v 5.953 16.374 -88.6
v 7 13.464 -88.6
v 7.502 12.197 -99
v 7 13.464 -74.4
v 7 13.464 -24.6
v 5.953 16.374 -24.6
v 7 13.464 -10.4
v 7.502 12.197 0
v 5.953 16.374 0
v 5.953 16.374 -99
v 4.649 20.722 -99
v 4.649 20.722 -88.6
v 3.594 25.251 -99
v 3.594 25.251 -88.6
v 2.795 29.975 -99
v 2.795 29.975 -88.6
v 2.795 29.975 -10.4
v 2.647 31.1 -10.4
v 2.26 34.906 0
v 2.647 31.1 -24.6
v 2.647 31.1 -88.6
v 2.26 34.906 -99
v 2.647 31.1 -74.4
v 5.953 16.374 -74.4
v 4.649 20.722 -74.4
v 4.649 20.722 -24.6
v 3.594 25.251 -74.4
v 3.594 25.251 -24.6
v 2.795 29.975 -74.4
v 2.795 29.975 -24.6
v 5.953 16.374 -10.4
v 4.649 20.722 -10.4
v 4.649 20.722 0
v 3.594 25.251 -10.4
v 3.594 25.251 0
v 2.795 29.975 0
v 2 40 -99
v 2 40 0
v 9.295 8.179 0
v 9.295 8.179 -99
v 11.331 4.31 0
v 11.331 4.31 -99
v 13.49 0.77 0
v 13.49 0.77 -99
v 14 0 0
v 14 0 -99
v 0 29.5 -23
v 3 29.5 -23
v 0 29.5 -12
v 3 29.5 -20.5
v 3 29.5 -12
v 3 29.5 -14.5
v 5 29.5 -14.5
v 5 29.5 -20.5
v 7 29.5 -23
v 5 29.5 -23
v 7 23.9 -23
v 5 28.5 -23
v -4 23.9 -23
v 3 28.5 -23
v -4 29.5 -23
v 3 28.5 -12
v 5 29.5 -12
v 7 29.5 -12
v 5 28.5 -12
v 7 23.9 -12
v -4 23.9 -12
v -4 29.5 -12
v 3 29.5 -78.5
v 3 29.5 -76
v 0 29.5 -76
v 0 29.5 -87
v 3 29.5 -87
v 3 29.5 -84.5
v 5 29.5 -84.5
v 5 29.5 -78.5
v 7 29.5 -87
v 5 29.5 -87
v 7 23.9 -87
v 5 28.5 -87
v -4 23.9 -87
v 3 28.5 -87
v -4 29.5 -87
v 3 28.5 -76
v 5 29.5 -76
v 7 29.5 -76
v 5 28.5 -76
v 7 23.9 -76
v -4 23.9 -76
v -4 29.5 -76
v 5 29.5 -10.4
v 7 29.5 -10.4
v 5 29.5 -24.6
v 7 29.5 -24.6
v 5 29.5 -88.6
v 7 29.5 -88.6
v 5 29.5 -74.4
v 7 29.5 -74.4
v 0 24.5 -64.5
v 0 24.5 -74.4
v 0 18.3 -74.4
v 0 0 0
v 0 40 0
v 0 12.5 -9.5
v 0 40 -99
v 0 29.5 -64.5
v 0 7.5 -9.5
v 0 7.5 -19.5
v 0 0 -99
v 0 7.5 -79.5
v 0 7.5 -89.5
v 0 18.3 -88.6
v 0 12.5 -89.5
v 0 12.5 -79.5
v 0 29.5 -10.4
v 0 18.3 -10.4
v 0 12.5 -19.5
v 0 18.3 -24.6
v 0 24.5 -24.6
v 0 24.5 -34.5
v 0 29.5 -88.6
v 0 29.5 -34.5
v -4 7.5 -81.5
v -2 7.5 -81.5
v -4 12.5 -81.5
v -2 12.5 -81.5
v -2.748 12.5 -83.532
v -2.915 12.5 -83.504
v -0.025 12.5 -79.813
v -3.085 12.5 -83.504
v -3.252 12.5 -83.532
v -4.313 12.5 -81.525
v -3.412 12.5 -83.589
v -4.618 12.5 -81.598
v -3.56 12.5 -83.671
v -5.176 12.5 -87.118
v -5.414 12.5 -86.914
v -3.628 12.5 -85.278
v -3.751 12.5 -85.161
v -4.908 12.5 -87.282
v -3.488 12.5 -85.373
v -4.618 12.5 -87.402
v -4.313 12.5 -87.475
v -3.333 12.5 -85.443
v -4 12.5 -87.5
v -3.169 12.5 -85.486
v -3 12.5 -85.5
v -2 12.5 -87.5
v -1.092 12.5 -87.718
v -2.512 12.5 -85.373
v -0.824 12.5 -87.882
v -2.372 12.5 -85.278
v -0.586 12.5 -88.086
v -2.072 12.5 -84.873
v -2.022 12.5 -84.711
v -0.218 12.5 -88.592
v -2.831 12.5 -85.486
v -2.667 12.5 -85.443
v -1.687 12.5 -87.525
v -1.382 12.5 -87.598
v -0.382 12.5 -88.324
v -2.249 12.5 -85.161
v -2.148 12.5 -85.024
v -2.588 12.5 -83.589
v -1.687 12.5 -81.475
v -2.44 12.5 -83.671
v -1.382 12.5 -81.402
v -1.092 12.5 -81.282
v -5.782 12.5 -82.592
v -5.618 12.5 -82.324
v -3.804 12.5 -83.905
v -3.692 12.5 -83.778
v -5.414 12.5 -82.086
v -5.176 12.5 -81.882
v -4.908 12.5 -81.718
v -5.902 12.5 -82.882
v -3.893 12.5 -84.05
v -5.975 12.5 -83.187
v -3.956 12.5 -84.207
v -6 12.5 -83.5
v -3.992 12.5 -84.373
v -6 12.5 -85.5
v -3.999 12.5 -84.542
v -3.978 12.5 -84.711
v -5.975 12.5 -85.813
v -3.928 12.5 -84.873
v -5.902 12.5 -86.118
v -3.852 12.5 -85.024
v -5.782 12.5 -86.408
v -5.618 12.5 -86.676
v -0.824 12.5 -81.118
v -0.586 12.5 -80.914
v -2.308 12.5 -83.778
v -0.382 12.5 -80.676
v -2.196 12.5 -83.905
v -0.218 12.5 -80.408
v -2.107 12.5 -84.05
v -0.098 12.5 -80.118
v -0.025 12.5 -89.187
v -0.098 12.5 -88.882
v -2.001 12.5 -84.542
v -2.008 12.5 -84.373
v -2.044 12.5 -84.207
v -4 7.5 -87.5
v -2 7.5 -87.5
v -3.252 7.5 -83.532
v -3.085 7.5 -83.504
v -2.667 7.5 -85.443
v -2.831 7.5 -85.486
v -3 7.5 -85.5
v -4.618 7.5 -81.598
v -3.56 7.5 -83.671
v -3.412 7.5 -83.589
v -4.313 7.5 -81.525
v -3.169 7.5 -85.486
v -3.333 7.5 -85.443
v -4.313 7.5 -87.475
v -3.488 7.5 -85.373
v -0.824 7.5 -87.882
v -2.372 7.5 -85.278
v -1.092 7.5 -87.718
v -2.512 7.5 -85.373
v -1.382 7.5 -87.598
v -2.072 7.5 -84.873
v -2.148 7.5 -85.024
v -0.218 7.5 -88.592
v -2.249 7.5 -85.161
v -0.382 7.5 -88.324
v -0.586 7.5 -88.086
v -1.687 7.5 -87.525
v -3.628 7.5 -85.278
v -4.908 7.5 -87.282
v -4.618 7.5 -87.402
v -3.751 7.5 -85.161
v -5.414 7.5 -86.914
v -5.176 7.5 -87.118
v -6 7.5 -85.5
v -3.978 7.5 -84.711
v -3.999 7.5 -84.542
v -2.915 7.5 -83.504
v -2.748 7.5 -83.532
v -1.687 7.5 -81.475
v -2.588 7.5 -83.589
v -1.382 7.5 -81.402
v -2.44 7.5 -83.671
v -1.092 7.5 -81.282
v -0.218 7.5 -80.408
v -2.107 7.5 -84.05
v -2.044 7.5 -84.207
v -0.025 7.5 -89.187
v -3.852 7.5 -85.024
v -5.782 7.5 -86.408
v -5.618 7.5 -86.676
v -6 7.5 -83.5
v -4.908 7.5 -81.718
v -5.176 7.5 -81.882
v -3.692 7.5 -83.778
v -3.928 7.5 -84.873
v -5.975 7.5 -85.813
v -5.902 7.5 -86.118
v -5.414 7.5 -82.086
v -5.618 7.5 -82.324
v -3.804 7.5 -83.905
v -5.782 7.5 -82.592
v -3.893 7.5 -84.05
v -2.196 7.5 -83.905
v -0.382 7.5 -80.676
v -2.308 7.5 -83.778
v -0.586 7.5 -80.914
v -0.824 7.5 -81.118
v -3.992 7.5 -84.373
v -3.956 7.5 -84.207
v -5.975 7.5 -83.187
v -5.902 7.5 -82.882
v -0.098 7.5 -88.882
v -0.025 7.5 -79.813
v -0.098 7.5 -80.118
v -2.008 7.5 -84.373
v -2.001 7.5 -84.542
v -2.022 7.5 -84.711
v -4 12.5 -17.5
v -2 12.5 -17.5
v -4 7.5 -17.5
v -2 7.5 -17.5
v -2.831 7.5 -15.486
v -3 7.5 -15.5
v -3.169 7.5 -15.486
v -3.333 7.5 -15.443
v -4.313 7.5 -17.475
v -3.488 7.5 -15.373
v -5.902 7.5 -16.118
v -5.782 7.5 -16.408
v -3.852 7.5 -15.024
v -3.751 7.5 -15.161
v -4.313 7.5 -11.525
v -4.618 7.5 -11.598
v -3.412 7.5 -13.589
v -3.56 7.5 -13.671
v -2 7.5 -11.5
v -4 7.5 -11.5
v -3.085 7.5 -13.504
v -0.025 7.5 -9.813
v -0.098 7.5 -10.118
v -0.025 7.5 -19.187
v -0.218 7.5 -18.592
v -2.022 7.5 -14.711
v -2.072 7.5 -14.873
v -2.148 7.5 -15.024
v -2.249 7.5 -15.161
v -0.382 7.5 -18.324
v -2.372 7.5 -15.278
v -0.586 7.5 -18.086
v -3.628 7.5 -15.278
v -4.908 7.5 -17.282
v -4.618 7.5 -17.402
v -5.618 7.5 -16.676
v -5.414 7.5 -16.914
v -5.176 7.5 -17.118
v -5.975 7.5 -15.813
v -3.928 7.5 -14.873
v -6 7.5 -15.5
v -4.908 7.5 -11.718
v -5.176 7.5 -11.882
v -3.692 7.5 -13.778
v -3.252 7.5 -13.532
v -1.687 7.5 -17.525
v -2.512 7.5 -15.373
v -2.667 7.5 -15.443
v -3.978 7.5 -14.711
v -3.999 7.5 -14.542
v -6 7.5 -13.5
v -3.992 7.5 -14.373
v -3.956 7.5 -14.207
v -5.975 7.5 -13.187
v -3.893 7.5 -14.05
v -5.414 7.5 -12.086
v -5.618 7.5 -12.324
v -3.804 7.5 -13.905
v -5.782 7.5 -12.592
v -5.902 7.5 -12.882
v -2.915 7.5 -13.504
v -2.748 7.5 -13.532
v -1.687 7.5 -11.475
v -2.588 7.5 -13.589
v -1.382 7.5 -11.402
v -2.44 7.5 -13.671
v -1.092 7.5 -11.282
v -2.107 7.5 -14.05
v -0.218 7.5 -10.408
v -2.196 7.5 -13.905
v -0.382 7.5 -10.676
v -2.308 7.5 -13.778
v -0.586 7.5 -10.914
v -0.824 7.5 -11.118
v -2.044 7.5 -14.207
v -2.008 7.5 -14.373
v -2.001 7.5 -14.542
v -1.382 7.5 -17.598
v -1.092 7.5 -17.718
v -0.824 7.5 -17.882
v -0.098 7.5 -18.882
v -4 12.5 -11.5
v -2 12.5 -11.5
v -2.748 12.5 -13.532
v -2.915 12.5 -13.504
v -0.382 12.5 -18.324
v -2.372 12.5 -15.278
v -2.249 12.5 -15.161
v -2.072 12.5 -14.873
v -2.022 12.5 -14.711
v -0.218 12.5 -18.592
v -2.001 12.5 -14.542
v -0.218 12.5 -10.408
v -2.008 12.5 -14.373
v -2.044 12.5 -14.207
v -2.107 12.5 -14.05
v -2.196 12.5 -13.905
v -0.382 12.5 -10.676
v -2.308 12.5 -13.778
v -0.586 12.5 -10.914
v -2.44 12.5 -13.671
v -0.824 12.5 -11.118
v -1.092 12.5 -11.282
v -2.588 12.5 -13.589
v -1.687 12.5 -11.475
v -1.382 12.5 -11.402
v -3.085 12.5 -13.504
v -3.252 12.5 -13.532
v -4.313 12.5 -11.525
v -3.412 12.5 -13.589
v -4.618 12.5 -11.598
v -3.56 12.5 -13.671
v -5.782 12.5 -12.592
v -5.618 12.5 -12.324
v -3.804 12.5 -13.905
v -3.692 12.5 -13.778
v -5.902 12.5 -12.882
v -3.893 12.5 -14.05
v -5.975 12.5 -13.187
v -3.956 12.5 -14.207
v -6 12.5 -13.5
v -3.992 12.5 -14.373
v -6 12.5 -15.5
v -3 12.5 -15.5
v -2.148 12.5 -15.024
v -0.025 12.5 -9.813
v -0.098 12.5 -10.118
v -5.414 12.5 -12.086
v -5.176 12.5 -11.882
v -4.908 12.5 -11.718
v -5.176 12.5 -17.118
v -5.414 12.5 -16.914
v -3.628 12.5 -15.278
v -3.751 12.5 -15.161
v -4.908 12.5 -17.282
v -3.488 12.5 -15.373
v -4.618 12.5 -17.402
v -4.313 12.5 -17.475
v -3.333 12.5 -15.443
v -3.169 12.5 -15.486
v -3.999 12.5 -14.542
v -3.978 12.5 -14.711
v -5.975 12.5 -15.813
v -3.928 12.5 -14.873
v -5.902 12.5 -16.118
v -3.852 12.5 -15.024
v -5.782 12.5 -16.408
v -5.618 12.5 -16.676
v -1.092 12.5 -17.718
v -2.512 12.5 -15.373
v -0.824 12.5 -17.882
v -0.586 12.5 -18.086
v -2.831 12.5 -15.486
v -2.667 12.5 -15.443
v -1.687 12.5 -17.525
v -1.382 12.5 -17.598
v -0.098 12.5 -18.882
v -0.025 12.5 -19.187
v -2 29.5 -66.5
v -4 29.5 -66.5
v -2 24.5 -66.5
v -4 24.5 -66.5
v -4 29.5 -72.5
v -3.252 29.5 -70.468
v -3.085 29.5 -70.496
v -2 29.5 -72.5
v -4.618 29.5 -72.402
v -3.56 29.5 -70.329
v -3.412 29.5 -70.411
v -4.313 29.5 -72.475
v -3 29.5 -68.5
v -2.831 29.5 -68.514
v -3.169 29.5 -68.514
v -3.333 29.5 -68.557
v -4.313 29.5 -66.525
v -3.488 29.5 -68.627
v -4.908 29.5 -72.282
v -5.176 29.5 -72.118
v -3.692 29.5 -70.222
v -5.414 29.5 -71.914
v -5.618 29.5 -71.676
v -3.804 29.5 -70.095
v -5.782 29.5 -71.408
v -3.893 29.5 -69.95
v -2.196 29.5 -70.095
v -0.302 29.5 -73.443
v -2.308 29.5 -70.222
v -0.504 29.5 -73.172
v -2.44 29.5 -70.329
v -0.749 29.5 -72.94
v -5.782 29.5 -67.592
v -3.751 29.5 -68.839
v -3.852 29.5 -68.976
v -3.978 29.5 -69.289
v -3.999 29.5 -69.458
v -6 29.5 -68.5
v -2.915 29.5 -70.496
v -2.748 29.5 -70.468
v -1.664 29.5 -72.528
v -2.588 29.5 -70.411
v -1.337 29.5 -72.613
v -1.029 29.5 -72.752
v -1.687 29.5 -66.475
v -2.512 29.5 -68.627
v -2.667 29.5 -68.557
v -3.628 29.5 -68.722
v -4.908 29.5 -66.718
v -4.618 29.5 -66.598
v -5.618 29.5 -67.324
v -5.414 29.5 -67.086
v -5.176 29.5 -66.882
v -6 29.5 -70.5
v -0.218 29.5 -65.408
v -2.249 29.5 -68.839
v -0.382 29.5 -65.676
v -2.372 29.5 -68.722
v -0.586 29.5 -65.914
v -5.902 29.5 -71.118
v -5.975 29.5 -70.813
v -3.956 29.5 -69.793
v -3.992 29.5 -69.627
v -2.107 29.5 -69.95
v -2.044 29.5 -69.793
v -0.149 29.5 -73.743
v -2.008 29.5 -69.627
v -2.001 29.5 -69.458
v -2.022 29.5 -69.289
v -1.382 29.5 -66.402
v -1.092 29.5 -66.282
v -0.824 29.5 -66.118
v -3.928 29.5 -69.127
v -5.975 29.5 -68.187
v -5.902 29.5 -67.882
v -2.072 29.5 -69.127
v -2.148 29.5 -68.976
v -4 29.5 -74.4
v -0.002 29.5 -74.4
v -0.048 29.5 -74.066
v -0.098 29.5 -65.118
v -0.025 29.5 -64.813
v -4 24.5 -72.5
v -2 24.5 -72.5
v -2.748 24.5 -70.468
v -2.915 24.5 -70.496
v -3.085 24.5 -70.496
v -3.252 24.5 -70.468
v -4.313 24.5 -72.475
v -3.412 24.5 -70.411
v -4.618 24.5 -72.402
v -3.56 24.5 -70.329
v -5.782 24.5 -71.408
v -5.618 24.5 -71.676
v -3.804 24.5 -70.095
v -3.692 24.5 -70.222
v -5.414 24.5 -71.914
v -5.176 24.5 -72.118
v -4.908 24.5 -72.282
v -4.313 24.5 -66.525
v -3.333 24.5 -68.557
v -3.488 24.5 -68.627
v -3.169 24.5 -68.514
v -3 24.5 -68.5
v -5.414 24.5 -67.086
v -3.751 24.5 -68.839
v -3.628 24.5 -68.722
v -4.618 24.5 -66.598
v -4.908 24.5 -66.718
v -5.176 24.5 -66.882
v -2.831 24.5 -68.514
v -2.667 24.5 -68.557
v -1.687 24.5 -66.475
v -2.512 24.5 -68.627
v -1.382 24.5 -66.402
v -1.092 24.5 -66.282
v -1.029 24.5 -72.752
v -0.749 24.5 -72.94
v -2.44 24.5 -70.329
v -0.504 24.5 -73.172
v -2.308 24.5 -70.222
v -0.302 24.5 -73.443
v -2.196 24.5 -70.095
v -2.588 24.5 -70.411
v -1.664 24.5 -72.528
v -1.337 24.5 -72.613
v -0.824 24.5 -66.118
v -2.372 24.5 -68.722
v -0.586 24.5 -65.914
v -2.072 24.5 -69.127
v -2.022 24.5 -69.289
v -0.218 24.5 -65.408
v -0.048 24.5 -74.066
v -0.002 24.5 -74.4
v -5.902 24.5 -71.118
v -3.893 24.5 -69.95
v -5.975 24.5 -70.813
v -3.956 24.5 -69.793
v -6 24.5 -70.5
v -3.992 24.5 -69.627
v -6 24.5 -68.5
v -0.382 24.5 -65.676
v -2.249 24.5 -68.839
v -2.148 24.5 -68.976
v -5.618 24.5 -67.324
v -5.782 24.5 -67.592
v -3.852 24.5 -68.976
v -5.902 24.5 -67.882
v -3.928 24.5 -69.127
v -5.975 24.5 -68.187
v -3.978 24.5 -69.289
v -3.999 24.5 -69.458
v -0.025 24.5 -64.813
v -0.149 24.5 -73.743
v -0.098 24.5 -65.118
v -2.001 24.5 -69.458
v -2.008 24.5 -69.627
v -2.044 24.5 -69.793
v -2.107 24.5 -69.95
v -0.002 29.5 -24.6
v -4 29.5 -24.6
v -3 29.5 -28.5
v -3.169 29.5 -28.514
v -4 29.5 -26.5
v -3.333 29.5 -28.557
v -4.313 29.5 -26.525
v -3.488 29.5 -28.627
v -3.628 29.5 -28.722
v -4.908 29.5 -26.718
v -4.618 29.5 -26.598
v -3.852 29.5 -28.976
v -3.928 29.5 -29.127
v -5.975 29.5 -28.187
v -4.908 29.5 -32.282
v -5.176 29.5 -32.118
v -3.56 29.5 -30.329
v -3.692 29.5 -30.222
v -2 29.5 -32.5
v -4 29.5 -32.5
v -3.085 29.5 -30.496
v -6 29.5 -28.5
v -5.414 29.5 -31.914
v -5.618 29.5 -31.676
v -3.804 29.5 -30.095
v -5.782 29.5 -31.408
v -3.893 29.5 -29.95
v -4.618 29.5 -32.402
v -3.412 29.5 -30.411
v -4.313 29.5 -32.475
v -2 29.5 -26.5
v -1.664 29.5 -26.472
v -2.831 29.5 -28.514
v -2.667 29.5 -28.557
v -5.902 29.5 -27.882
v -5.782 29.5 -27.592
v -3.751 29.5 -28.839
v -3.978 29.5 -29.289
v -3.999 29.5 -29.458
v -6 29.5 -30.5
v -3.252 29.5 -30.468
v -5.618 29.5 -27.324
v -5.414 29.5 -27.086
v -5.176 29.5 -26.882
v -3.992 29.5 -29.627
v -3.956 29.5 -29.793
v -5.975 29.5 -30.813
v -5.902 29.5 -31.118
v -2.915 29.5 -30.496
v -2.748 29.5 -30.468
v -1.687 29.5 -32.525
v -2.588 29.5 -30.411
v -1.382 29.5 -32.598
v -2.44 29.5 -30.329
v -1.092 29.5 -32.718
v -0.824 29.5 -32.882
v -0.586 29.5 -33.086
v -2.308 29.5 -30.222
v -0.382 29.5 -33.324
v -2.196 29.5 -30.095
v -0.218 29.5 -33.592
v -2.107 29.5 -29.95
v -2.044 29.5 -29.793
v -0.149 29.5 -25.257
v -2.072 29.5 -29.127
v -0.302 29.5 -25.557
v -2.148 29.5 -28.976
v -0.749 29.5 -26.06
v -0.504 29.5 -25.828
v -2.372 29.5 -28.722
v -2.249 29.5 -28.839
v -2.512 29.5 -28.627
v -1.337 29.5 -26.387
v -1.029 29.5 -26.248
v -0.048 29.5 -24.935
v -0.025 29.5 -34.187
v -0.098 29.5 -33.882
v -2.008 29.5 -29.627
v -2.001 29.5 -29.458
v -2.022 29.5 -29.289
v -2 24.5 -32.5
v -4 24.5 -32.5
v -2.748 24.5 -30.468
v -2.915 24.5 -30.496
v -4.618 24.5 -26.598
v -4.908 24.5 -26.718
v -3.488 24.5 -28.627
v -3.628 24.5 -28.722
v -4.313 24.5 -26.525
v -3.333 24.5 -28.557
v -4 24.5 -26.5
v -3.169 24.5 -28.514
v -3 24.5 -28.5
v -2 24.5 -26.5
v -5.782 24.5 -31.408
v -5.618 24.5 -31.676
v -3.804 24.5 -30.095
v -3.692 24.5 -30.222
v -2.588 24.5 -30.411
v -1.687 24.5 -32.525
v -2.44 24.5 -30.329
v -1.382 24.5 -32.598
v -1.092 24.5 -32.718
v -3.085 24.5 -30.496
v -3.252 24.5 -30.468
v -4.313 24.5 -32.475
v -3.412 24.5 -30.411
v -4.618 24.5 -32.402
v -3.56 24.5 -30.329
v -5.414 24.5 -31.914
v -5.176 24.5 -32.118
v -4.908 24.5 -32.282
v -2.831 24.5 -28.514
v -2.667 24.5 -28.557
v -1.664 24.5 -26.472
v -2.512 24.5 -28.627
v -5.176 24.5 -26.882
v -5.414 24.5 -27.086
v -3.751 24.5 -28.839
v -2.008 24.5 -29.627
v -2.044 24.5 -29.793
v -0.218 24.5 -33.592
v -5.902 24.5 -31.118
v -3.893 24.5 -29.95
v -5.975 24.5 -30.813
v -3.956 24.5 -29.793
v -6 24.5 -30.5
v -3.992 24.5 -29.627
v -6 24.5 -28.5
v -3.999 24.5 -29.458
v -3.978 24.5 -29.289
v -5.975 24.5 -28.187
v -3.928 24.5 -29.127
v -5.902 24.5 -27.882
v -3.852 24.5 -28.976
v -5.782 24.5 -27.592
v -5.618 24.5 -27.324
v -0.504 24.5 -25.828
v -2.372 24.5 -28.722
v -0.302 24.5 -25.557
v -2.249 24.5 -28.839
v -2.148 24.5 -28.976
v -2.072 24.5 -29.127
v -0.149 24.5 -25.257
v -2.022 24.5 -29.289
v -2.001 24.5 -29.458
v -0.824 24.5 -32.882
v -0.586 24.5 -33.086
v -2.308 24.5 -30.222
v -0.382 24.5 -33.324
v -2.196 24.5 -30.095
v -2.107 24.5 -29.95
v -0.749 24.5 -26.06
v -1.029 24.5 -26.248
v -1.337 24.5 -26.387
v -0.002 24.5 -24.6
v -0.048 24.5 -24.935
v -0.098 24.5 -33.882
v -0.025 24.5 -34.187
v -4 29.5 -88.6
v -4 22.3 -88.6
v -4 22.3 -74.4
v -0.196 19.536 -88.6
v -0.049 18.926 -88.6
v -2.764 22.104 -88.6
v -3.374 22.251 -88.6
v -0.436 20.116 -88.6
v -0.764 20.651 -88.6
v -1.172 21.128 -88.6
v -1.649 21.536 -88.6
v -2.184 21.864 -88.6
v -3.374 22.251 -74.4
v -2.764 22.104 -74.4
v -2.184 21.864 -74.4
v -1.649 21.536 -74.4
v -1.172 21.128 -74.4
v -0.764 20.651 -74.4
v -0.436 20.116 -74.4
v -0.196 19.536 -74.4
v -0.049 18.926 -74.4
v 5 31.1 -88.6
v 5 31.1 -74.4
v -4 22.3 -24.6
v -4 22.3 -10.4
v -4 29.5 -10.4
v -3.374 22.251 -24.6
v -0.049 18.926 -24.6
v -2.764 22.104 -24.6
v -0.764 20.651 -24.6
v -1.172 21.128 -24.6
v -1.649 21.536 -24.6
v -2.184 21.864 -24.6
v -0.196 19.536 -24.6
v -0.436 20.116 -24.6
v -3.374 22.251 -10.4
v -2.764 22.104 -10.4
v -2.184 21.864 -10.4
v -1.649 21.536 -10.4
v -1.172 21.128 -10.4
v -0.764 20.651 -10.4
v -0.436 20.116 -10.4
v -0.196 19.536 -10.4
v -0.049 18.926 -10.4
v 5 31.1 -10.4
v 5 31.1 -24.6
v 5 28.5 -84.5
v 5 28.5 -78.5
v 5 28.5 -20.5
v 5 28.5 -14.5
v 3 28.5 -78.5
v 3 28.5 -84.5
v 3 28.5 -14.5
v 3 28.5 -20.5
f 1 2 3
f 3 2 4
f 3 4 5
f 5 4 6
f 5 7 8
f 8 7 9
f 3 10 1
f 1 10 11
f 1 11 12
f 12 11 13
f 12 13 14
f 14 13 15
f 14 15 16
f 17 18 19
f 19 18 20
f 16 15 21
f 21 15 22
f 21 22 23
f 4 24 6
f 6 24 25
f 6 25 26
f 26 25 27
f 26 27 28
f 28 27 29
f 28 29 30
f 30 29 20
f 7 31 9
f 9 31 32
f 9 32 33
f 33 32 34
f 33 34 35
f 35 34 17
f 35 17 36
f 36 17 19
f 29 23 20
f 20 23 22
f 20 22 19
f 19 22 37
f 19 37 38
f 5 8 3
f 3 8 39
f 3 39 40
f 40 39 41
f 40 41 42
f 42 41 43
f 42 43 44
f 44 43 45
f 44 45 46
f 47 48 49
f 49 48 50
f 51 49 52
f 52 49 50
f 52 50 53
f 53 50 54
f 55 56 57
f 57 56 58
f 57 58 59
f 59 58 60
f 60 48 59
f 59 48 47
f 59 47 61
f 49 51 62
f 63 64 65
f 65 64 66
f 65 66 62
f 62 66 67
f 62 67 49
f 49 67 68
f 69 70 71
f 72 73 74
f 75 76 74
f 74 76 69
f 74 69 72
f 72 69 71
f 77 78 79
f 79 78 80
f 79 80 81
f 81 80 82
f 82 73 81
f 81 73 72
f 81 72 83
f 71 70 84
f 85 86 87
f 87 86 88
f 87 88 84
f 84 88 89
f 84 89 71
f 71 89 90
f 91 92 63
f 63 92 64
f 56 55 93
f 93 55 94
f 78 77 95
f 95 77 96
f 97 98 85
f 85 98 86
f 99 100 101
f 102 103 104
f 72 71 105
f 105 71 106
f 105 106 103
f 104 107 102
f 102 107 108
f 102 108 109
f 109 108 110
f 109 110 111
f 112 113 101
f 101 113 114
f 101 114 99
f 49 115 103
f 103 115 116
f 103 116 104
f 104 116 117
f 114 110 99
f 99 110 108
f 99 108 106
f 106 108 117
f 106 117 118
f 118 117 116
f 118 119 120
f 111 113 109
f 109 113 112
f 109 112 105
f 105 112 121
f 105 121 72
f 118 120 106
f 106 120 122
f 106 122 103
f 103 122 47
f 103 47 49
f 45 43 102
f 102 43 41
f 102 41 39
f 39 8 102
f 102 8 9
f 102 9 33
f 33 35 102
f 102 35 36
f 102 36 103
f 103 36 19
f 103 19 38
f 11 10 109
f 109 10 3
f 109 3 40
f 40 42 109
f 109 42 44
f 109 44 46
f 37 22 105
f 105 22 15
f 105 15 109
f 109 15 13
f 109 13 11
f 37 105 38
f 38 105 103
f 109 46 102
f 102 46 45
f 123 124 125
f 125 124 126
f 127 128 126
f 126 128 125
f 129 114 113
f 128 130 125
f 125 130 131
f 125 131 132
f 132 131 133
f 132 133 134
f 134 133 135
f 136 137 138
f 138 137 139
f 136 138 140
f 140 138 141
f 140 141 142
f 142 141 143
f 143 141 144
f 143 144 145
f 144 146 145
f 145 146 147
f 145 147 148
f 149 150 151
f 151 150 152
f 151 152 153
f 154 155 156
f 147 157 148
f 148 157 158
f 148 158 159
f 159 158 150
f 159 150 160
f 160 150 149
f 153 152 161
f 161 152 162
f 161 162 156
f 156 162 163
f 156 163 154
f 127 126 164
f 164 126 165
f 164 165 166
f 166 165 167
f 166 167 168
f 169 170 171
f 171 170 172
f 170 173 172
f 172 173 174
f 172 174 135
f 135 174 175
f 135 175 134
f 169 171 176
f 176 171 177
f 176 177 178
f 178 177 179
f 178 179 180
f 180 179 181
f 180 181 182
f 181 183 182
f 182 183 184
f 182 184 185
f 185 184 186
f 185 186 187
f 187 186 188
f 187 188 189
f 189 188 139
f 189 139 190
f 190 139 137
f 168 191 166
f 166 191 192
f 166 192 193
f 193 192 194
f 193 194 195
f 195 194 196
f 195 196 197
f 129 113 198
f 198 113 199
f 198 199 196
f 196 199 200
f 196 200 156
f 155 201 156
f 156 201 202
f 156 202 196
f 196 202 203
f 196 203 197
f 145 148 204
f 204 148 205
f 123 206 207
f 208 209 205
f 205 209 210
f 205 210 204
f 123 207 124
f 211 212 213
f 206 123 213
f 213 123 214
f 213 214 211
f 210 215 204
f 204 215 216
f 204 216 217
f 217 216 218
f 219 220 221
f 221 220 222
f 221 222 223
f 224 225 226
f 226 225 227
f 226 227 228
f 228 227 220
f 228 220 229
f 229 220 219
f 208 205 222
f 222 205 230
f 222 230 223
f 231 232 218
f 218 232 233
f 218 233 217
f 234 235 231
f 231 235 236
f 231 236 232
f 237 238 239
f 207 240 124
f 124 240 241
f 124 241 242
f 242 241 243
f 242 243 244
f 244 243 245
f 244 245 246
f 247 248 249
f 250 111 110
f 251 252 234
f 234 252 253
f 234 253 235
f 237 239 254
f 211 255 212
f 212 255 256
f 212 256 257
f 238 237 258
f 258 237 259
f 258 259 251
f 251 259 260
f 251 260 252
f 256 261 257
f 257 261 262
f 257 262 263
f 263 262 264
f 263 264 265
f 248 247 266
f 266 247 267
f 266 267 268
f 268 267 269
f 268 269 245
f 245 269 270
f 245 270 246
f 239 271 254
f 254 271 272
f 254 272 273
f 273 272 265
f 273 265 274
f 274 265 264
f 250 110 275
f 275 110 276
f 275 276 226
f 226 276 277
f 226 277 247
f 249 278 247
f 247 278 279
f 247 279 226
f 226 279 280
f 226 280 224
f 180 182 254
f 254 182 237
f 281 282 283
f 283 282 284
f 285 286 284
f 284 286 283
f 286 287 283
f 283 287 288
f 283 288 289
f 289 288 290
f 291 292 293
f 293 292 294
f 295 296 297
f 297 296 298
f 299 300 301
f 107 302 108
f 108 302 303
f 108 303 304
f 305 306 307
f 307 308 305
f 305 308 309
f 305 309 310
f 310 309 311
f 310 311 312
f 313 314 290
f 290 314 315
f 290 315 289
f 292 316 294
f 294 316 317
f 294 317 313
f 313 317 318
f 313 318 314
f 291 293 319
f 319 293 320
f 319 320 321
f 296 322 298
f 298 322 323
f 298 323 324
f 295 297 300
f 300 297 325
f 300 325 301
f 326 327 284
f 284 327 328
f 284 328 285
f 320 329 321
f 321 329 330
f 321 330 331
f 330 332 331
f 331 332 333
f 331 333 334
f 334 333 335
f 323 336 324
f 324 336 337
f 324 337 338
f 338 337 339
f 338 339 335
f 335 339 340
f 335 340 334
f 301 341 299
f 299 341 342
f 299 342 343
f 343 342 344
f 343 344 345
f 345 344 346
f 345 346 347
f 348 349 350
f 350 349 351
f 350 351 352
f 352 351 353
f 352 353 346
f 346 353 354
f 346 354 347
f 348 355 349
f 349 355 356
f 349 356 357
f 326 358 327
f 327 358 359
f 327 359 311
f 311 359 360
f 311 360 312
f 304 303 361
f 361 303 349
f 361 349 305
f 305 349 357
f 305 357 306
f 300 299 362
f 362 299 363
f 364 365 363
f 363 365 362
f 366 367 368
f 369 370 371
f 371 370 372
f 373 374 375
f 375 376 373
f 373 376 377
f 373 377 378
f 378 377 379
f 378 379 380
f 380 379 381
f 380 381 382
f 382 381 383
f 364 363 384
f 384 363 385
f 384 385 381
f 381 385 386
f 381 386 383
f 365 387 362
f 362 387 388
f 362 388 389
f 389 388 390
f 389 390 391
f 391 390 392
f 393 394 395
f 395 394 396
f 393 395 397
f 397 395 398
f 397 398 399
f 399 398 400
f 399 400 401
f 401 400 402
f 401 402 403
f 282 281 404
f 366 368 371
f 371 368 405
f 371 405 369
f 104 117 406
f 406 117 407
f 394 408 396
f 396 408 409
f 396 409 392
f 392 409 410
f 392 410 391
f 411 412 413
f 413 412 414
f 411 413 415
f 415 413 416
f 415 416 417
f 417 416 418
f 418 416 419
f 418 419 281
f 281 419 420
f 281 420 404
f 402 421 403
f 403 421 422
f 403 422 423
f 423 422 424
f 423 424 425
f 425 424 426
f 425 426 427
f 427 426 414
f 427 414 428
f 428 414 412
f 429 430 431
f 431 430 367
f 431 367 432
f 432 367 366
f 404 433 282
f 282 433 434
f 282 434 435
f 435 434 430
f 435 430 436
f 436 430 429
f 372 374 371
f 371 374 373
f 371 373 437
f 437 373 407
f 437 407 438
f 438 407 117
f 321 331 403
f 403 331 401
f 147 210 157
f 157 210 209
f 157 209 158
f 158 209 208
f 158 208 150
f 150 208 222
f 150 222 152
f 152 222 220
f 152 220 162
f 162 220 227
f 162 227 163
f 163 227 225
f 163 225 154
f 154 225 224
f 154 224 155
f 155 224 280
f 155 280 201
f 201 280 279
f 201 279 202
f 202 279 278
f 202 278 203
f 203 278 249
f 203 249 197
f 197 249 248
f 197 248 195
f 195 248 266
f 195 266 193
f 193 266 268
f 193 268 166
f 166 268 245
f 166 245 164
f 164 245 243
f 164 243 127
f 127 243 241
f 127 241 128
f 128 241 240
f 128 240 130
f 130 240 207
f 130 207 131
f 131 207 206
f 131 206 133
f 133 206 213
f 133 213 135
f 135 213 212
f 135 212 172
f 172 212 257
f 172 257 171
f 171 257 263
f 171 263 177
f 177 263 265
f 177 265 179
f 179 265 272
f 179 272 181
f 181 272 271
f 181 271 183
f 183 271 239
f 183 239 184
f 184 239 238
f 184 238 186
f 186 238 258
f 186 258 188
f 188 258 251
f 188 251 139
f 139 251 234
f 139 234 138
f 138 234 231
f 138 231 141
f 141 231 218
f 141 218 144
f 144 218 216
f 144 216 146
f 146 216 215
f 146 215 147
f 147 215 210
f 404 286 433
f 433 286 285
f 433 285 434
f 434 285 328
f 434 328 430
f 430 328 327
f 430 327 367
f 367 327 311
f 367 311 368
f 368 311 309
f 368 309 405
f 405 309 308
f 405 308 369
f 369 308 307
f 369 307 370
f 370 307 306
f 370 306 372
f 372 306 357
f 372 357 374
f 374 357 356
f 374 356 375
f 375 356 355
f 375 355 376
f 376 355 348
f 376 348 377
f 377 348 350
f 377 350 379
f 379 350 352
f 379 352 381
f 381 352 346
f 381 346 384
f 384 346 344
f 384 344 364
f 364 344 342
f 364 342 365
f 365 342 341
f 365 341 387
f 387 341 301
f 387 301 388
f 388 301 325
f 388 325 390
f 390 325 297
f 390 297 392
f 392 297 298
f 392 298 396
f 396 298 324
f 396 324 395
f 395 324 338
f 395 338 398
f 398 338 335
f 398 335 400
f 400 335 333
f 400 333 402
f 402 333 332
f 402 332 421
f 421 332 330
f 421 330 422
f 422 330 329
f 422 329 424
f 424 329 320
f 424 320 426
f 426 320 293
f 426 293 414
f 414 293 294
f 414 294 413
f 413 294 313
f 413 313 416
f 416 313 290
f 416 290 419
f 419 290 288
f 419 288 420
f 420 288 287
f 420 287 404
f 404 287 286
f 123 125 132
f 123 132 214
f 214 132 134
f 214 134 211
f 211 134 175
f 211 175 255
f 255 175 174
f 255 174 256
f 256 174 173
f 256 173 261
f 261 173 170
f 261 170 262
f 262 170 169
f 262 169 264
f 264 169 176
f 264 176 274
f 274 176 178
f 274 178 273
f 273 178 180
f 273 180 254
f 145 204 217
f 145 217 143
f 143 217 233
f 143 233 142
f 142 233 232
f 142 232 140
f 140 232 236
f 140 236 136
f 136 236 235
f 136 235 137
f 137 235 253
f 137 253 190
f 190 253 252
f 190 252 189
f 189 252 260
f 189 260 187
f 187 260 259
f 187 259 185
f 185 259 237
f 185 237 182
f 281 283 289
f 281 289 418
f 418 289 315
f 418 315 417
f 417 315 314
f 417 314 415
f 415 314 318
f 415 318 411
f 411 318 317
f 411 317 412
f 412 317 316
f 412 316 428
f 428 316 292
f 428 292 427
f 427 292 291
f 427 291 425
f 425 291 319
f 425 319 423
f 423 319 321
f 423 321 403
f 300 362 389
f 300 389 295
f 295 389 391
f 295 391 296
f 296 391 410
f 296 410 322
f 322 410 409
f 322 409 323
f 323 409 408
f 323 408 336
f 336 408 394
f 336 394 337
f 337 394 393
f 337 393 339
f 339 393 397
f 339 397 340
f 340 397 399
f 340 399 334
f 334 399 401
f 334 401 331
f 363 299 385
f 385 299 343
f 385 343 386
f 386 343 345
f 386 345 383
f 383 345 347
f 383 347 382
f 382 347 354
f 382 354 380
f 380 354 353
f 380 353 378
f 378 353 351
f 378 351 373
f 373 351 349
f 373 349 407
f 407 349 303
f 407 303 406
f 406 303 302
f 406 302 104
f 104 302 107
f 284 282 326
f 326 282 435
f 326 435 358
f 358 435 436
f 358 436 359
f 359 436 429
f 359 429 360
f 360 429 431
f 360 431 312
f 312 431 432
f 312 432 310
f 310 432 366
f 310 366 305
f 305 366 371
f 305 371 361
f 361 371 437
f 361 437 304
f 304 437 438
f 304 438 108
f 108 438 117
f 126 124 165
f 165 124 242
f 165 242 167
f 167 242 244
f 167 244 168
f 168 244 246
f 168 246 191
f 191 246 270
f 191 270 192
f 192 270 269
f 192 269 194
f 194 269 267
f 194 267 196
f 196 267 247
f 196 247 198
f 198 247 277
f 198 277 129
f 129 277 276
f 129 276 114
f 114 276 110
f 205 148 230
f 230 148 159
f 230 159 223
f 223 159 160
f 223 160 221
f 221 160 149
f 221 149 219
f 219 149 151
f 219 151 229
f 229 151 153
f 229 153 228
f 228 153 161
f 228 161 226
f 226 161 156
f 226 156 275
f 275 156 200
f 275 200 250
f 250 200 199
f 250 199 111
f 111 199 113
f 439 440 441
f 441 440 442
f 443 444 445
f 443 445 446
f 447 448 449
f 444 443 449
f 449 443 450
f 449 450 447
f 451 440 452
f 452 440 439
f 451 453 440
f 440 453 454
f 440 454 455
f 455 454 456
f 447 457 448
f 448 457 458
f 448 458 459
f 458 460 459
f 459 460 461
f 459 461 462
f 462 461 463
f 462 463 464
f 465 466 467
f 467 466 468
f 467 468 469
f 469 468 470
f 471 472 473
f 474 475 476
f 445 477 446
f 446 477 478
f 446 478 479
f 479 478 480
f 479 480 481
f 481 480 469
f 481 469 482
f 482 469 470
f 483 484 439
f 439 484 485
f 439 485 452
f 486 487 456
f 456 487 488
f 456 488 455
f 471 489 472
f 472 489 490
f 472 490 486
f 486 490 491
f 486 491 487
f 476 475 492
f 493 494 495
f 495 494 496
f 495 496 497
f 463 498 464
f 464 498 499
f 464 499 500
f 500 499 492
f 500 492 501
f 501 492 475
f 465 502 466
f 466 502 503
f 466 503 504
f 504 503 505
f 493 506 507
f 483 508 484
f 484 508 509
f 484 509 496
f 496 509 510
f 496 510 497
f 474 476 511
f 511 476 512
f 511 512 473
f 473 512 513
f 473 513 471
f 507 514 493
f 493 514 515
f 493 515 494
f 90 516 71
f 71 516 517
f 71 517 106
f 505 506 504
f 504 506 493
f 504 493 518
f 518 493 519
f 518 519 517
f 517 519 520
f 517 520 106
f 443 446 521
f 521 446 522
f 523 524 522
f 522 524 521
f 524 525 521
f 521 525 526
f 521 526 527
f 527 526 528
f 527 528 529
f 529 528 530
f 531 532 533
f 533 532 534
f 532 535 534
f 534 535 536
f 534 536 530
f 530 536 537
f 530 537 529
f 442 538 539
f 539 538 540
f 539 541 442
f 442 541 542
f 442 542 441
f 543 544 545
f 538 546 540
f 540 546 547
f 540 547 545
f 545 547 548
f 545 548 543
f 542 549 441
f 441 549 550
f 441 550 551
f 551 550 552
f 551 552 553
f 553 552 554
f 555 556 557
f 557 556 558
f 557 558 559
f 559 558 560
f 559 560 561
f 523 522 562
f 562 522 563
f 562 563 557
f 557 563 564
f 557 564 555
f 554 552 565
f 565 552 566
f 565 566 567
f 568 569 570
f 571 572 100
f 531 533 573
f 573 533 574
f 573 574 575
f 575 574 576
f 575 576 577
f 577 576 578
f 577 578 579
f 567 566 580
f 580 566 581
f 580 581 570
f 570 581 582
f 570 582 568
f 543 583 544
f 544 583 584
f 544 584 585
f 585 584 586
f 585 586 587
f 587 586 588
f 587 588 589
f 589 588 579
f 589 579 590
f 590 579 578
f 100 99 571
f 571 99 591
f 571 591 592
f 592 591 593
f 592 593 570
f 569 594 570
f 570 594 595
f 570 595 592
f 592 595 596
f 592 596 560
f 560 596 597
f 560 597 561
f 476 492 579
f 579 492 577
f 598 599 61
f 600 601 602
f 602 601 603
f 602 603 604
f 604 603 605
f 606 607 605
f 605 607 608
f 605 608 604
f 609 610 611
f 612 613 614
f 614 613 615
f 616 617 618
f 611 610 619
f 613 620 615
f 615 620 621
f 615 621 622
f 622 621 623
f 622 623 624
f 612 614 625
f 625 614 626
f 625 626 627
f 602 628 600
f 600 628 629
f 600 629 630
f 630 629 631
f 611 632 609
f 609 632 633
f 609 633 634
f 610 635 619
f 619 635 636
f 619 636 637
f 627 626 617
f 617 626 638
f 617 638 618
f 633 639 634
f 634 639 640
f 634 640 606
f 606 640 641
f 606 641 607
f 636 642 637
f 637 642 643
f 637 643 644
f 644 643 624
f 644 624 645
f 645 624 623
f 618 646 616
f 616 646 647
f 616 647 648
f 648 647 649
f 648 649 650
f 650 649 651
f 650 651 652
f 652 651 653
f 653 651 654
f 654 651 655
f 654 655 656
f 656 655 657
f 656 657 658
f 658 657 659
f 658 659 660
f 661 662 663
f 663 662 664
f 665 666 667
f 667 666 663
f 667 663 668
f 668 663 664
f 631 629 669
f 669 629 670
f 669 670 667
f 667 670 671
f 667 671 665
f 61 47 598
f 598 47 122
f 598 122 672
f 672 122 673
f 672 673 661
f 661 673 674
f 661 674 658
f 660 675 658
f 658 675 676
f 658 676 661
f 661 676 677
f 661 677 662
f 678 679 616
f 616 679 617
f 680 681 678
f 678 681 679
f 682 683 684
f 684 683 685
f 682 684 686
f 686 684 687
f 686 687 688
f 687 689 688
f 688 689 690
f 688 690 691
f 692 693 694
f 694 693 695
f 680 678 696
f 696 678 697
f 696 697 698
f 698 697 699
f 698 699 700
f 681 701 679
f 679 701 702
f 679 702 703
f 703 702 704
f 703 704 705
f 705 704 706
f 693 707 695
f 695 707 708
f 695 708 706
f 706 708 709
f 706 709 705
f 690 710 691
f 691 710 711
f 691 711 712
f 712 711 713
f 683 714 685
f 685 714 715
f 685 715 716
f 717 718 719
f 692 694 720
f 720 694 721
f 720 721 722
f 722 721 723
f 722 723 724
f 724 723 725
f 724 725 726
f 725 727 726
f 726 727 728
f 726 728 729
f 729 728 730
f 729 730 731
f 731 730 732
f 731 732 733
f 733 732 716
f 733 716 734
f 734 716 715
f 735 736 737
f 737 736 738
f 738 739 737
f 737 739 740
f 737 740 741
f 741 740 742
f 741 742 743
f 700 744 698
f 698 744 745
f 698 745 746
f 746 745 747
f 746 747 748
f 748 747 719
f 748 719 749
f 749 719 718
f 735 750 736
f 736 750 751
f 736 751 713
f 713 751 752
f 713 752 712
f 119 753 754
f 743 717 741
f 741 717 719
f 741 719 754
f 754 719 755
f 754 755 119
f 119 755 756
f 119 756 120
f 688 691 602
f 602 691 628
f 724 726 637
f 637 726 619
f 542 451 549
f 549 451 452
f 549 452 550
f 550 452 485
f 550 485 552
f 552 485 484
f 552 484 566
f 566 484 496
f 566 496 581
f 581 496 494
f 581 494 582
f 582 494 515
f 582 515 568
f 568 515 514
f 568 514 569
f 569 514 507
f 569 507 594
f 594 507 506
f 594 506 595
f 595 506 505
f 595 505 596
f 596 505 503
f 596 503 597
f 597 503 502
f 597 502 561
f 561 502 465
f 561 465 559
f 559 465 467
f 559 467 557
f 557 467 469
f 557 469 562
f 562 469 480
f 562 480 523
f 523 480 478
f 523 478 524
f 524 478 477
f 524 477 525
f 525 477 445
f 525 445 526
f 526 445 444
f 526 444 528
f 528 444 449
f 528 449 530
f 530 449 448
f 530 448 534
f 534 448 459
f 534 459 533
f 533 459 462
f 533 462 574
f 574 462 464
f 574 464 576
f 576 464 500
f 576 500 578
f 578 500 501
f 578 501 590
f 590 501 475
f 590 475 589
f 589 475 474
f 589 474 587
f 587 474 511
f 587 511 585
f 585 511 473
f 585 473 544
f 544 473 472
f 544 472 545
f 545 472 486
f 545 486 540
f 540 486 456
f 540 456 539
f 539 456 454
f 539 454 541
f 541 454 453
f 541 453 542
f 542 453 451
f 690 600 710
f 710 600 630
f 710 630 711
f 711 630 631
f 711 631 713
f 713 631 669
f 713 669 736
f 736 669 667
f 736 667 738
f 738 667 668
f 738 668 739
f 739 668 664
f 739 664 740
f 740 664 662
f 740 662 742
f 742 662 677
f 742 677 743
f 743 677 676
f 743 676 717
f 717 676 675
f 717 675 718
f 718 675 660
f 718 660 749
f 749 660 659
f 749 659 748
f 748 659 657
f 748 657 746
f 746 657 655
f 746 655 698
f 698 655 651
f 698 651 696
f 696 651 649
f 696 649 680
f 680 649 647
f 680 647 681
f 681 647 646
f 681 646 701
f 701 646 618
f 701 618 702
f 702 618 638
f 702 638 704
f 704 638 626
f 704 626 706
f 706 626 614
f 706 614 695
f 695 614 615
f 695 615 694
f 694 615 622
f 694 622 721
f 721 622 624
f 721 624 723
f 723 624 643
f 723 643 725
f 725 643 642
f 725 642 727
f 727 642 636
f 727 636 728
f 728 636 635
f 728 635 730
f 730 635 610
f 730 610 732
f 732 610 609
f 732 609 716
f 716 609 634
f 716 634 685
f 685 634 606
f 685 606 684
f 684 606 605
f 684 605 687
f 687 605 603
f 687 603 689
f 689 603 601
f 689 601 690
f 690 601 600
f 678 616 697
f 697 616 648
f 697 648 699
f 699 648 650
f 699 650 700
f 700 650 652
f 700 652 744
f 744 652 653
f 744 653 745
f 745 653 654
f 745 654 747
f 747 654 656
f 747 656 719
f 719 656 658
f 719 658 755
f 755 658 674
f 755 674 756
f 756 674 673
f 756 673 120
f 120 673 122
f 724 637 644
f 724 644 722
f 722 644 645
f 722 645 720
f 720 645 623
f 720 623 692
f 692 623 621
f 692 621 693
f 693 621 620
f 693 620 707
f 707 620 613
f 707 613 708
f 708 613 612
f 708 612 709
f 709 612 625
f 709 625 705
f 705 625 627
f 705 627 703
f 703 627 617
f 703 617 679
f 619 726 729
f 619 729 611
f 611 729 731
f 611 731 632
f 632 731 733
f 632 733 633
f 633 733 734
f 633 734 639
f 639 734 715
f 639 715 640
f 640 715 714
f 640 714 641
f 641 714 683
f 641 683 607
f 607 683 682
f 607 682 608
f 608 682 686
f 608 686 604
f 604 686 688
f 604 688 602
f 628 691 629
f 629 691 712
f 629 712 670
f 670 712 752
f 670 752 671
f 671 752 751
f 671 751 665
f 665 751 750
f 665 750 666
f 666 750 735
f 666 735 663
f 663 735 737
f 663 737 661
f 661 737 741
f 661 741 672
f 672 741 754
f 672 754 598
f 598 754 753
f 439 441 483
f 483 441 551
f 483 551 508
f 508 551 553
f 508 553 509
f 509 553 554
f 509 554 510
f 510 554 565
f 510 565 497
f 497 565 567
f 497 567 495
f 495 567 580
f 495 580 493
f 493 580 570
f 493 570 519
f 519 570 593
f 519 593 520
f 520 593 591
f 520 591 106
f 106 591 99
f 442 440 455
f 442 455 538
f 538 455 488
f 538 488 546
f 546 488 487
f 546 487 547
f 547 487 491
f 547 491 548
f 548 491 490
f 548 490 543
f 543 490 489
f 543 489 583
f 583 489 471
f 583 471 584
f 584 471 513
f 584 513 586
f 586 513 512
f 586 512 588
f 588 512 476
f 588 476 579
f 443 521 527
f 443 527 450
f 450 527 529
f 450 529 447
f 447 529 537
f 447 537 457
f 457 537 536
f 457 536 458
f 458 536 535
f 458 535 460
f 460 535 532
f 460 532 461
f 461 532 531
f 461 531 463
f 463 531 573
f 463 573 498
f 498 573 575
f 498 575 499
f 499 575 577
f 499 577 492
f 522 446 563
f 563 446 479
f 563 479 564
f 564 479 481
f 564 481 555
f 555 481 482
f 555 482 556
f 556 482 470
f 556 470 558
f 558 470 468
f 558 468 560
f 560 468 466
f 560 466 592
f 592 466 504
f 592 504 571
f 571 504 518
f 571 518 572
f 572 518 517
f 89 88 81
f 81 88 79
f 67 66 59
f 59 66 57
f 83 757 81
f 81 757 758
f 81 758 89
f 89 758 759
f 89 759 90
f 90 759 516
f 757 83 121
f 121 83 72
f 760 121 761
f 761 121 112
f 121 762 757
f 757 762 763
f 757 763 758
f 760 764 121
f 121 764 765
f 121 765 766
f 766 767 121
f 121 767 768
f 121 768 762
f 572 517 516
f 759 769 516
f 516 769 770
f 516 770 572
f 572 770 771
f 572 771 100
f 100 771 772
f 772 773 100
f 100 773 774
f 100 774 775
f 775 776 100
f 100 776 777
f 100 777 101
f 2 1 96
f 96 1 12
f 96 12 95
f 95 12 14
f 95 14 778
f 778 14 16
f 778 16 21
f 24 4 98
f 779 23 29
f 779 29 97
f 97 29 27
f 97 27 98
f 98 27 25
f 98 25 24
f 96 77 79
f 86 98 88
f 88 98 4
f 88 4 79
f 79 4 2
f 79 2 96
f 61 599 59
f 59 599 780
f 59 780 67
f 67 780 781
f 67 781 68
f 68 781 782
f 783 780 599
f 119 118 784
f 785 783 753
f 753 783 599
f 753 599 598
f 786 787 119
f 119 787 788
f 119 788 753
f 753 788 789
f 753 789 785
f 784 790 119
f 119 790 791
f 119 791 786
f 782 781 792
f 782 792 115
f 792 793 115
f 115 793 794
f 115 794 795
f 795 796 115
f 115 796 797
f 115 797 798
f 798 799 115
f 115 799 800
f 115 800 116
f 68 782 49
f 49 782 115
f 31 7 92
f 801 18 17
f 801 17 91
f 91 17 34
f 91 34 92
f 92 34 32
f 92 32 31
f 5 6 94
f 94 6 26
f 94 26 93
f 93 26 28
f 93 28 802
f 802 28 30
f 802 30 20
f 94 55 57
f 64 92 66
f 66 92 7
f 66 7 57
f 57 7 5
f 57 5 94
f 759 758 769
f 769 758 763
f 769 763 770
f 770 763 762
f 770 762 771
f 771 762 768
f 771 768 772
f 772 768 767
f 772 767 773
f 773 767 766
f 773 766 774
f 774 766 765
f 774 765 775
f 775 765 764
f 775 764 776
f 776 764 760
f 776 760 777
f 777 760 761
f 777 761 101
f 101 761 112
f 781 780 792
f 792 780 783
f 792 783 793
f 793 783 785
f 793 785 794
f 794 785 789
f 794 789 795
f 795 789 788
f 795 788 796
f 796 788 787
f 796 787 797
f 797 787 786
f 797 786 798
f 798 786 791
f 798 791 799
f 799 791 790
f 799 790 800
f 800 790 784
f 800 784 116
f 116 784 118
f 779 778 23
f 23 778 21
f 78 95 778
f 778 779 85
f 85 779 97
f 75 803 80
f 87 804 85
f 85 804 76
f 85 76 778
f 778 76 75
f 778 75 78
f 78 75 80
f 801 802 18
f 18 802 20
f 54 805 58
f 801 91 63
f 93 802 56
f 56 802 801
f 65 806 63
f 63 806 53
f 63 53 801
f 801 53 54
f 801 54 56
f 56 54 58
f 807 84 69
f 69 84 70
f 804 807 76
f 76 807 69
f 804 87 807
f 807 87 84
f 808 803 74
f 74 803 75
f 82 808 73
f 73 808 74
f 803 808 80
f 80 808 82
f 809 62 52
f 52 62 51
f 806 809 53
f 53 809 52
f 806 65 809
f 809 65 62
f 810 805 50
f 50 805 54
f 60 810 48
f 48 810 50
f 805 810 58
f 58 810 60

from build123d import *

# Parameters (mm, degrees)
SKETCH1_W                = 14
SKETCH1_H                = 99
BOSS_EXTRUDE1_DEPTH      = 40
CUT_EXTRUDE1_DEPTH       = 108.689368092
SKETCH3_W                = 6
SKETCH3_H                = 5
BOSS_EXTRUDE2_DEPTH      = 6
SKETCH4_R                = 1
CUT_EXTRUDE2_DEPTH       = 6
SKETCH5_R                = 1
CUT_EXTRUDE3_DEPTH       = 6
FILLET1_R                = 2
SKETCH6_W                = 6
SKETCH6_H                = 5
BOSS_EXTRUDE3_DEPTH      = 6
SKETCH7_R                = 1
CUT_EXTRUDE4_DEPTH       = 5
SKETCH8_R                = 1
CUT_EXTRUDE5_DEPTH       = 5
FILLET2_R                = 2
SKETCH9_W                = 11
SKETCH9_H                = 5.6
CUT_EXTRUDE6_DEPTH       = 10
BOSS_EXTRUDE4_DEPTH      = 4
BOSS_EXTRUDE4_DEPTH_BACK = 7
FILLET4_R                = 4
SKETCH11_W               = 14.2
SKETCH11_H               = 1.6
BOSS_EXTRUDE5_DEPTH      = 5
SKETCH12_W               = 2
SKETCH12_H               = 2.5
BOSS_EXTRUDE6_DEPTH      = 1
SKETCH13_W               = 2
SKETCH13_H               = 2.5
BOSS_EXTRUDE7_DEPTH      = 1
BOSS_EXTRUDE8_DEPTH      = 10
BOSS_EXTRUDE9_DEPTH      = 10


with BuildPart() as part:
    # Sketch1 → Boss-Extrude1 (new body)
    with BuildSketch(Plane(origin=(0, 0, 0), x_dir=(1, 0, 0), z_dir=(0, 1, 0))):
        with Locations((7, 49.5)):
            Rectangle(SKETCH1_W, SKETCH1_H)
    extrude(amount=BOSS_EXTRUDE1_DEPTH)

    # Sketch2 → Cut-Extrude1 (cut, through all)
    with BuildSketch(Plane.XY):
        with BuildLine():
            Line((14, 0), (14, 40))
            Line((14, 40), (2, 40))
            add(Edge.make_bspline(
                [(2, 40), (2.539521764, 17.05373231), (14, 0)],
                knots=[0, 0, 0, 0.735735095, 0.735735095, 0.735735095], degree=2))
        make_face()
    extrude(amount=-CUT_EXTRUDE1_DEPTH, mode=Mode.SUBTRACT)

    # Sketch3 → Boss-Extrude2 (add)
    with BuildSketch(Plane.ZY):
        with Locations((-84.5, 10)):
            Rectangle(SKETCH3_W, SKETCH3_H)
        with Locations((-14.5, 10)):
            Rectangle(SKETCH3_W, SKETCH3_H)
    extrude(amount=BOSS_EXTRUDE2_DEPTH)

    # Sketch4 → Cut-Extrude2 (cut)
    with BuildSketch(Plane.XZ.offset(-7.5)):
        with Locations(Location((-3, -84.5, 0), (0, 0, 270))):
            Circle(SKETCH4_R)
    extrude(amount=-CUT_EXTRUDE2_DEPTH, mode=Mode.SUBTRACT)

    # Sketch5 → Cut-Extrude3 (cut)
    with BuildSketch(Plane.XZ.offset(-7.5)):
        with Locations(Location((-3, -14.5, 0), (0, 0, 270))):
            Circle(SKETCH5_R)
    extrude(amount=-CUT_EXTRUDE3_DEPTH, mode=Mode.SUBTRACT)

    # Fillet1
    fillet1_edges = [part.edges().sort_by_distance(p)[0] for p in [
        (0, 10, -81.5),
        (0, 10, -87.5),
        (-6, 10, -81.5),
        (-6, 10, -87.5),
        (0, 10, -17.5),
        (0, 10, -11.5),
        (-6, 10, -17.5),
        (-6, 10, -11.5),
    ]]
    fillet(fillet1_edges, radius=FILLET1_R)

    # Sketch6 → Boss-Extrude3 (add)
    with BuildSketch(Plane.ZY):
        with Locations((-69.5, 27)):
            Rectangle(SKETCH6_W, SKETCH6_H)
        with Locations((-29.5, 27)):
            Rectangle(SKETCH6_W, SKETCH6_H)
    extrude(amount=BOSS_EXTRUDE3_DEPTH)

    # Sketch7 → Cut-Extrude4 (cut)
    with BuildSketch(Plane(origin=(0, 29.5, 0), x_dir=(1, 0, 0), z_dir=(0, 1, 0))):
        with Locations(Location((-3, 69.5, 0), (0, 0, 270))):
            Circle(SKETCH7_R)
    extrude(amount=-CUT_EXTRUDE4_DEPTH, mode=Mode.SUBTRACT)

    # Sketch8 → Cut-Extrude5 (cut)
    with BuildSketch(Plane(origin=(0, 29.5, 0), x_dir=(1, 0, 0), z_dir=(0, 1, 0))):
        with Locations(Location((-3, 29.5, 0), (0, 0, 270))):
            Circle(SKETCH8_R)
    extrude(amount=-CUT_EXTRUDE5_DEPTH, mode=Mode.SUBTRACT)

    # Fillet2
    fillet2_edges = [part.edges().sort_by_distance(p)[0] for p in [
        (0, 27, -66.5),
        (0, 27, -72.5),
        (-6, 27, -66.5),
        (-6, 27, -72.5),
        (0, 27, -32.5),
        (0, 27, -26.5),
        (-6, 27, -32.5),
        (-6, 27, -26.5),
    ]]
    fillet(fillet2_edges, radius=FILLET2_R)

    # Sketch9 → Cut-Extrude6 (cut)
    with BuildSketch(Plane.ZY):
        with Locations((-81.5, 26.7)):
            Rectangle(SKETCH9_W, SKETCH9_H)
        with Locations((-17.5, 26.7)):
            Rectangle(SKETCH9_W, SKETCH9_H)
    extrude(amount=-CUT_EXTRUDE6_DEPTH, mode=Mode.SUBTRACT)

    # Sketch10 → Boss-Extrude4 (add, two sides: drawn at the far end of the back side and taken through both)
    with BuildSketch(Plane.ZY.offset(-BOSS_EXTRUDE4_DEPTH_BACK)):
        Polygon((-76, 29.5), (-74.4, 29.5), (-74.4, 22.3), (-76, 22.3), (-88.6, 22.3), (-88.6, 29.5), (-87, 29.5), (-87, 23.9), (-76, 23.9), align=None)
        Polygon((-23, 29.5), (-24.6, 29.5), (-24.6, 22.3), (-23, 22.3), (-10.4, 22.3), (-10.4, 29.5), (-12, 29.5), (-12, 23.9), (-23, 23.9), align=None)
    extrude(amount=BOSS_EXTRUDE4_DEPTH + BOSS_EXTRUDE4_DEPTH_BACK)

    # Fillet4
    fillet4_edges = [part.edges().sort_by_distance(p)[0] for p in [
        (0, 22.3, -81.5),
        (0, 22.3, -17.5),
    ]]
    fillet(fillet4_edges, radius=FILLET4_R - 0.0001)  # a hair under: the kernel refuses the full size

    # Sketch11 → Boss-Extrude5 (add)
    with BuildSketch(Plane.ZY):
        with Locations((-81.5, 30.3)):
            Rectangle(SKETCH11_W, SKETCH11_H)
        with Locations((-17.5, 30.3)):
            Rectangle(SKETCH11_W, SKETCH11_H)
    extrude(amount=-BOSS_EXTRUDE5_DEPTH)

    # Sketch12 → Boss-Extrude6 (add)
    with BuildSketch(Plane.XZ.offset(-29.5)):
        with Locations((4, -77.25)):
            Rectangle(SKETCH12_W, SKETCH12_H)
        with Locations((4, -85.75)):
            Rectangle(SKETCH12_W, SKETCH12_H)
    extrude(amount=BOSS_EXTRUDE6_DEPTH)

    # Sketch13 → Boss-Extrude7 (add)
    with BuildSketch(Plane.XZ.offset(-29.5)):
        with Locations((4, -13.25)):
            Rectangle(SKETCH13_W, SKETCH13_H)
        with Locations((4, -21.75)):
            Rectangle(SKETCH13_W, SKETCH13_H)
    extrude(amount=BOSS_EXTRUDE7_DEPTH)

    # Sketch14 → Boss-Extrude8 (add)
    with BuildSketch(Plane.XZ.offset(-22.3)):
        Polygon((4.247690058, -10.4), (7, -10.4), (7, -24.6), (4.247690059, -24.6), align=None)
    extrude(amount=BOSS_EXTRUDE8_DEPTH)

    # Sketch15 → Boss-Extrude9 (add)
    with BuildSketch(Plane.XZ.offset(-22.3)):
        Polygon((4.247690058, -74.4), (4.247690059, -88.6), (7, -88.6), (7, -74.4), align=None)
    extrude(amount=BOSS_EXTRUDE9_DEPTH)


solid = part.part
